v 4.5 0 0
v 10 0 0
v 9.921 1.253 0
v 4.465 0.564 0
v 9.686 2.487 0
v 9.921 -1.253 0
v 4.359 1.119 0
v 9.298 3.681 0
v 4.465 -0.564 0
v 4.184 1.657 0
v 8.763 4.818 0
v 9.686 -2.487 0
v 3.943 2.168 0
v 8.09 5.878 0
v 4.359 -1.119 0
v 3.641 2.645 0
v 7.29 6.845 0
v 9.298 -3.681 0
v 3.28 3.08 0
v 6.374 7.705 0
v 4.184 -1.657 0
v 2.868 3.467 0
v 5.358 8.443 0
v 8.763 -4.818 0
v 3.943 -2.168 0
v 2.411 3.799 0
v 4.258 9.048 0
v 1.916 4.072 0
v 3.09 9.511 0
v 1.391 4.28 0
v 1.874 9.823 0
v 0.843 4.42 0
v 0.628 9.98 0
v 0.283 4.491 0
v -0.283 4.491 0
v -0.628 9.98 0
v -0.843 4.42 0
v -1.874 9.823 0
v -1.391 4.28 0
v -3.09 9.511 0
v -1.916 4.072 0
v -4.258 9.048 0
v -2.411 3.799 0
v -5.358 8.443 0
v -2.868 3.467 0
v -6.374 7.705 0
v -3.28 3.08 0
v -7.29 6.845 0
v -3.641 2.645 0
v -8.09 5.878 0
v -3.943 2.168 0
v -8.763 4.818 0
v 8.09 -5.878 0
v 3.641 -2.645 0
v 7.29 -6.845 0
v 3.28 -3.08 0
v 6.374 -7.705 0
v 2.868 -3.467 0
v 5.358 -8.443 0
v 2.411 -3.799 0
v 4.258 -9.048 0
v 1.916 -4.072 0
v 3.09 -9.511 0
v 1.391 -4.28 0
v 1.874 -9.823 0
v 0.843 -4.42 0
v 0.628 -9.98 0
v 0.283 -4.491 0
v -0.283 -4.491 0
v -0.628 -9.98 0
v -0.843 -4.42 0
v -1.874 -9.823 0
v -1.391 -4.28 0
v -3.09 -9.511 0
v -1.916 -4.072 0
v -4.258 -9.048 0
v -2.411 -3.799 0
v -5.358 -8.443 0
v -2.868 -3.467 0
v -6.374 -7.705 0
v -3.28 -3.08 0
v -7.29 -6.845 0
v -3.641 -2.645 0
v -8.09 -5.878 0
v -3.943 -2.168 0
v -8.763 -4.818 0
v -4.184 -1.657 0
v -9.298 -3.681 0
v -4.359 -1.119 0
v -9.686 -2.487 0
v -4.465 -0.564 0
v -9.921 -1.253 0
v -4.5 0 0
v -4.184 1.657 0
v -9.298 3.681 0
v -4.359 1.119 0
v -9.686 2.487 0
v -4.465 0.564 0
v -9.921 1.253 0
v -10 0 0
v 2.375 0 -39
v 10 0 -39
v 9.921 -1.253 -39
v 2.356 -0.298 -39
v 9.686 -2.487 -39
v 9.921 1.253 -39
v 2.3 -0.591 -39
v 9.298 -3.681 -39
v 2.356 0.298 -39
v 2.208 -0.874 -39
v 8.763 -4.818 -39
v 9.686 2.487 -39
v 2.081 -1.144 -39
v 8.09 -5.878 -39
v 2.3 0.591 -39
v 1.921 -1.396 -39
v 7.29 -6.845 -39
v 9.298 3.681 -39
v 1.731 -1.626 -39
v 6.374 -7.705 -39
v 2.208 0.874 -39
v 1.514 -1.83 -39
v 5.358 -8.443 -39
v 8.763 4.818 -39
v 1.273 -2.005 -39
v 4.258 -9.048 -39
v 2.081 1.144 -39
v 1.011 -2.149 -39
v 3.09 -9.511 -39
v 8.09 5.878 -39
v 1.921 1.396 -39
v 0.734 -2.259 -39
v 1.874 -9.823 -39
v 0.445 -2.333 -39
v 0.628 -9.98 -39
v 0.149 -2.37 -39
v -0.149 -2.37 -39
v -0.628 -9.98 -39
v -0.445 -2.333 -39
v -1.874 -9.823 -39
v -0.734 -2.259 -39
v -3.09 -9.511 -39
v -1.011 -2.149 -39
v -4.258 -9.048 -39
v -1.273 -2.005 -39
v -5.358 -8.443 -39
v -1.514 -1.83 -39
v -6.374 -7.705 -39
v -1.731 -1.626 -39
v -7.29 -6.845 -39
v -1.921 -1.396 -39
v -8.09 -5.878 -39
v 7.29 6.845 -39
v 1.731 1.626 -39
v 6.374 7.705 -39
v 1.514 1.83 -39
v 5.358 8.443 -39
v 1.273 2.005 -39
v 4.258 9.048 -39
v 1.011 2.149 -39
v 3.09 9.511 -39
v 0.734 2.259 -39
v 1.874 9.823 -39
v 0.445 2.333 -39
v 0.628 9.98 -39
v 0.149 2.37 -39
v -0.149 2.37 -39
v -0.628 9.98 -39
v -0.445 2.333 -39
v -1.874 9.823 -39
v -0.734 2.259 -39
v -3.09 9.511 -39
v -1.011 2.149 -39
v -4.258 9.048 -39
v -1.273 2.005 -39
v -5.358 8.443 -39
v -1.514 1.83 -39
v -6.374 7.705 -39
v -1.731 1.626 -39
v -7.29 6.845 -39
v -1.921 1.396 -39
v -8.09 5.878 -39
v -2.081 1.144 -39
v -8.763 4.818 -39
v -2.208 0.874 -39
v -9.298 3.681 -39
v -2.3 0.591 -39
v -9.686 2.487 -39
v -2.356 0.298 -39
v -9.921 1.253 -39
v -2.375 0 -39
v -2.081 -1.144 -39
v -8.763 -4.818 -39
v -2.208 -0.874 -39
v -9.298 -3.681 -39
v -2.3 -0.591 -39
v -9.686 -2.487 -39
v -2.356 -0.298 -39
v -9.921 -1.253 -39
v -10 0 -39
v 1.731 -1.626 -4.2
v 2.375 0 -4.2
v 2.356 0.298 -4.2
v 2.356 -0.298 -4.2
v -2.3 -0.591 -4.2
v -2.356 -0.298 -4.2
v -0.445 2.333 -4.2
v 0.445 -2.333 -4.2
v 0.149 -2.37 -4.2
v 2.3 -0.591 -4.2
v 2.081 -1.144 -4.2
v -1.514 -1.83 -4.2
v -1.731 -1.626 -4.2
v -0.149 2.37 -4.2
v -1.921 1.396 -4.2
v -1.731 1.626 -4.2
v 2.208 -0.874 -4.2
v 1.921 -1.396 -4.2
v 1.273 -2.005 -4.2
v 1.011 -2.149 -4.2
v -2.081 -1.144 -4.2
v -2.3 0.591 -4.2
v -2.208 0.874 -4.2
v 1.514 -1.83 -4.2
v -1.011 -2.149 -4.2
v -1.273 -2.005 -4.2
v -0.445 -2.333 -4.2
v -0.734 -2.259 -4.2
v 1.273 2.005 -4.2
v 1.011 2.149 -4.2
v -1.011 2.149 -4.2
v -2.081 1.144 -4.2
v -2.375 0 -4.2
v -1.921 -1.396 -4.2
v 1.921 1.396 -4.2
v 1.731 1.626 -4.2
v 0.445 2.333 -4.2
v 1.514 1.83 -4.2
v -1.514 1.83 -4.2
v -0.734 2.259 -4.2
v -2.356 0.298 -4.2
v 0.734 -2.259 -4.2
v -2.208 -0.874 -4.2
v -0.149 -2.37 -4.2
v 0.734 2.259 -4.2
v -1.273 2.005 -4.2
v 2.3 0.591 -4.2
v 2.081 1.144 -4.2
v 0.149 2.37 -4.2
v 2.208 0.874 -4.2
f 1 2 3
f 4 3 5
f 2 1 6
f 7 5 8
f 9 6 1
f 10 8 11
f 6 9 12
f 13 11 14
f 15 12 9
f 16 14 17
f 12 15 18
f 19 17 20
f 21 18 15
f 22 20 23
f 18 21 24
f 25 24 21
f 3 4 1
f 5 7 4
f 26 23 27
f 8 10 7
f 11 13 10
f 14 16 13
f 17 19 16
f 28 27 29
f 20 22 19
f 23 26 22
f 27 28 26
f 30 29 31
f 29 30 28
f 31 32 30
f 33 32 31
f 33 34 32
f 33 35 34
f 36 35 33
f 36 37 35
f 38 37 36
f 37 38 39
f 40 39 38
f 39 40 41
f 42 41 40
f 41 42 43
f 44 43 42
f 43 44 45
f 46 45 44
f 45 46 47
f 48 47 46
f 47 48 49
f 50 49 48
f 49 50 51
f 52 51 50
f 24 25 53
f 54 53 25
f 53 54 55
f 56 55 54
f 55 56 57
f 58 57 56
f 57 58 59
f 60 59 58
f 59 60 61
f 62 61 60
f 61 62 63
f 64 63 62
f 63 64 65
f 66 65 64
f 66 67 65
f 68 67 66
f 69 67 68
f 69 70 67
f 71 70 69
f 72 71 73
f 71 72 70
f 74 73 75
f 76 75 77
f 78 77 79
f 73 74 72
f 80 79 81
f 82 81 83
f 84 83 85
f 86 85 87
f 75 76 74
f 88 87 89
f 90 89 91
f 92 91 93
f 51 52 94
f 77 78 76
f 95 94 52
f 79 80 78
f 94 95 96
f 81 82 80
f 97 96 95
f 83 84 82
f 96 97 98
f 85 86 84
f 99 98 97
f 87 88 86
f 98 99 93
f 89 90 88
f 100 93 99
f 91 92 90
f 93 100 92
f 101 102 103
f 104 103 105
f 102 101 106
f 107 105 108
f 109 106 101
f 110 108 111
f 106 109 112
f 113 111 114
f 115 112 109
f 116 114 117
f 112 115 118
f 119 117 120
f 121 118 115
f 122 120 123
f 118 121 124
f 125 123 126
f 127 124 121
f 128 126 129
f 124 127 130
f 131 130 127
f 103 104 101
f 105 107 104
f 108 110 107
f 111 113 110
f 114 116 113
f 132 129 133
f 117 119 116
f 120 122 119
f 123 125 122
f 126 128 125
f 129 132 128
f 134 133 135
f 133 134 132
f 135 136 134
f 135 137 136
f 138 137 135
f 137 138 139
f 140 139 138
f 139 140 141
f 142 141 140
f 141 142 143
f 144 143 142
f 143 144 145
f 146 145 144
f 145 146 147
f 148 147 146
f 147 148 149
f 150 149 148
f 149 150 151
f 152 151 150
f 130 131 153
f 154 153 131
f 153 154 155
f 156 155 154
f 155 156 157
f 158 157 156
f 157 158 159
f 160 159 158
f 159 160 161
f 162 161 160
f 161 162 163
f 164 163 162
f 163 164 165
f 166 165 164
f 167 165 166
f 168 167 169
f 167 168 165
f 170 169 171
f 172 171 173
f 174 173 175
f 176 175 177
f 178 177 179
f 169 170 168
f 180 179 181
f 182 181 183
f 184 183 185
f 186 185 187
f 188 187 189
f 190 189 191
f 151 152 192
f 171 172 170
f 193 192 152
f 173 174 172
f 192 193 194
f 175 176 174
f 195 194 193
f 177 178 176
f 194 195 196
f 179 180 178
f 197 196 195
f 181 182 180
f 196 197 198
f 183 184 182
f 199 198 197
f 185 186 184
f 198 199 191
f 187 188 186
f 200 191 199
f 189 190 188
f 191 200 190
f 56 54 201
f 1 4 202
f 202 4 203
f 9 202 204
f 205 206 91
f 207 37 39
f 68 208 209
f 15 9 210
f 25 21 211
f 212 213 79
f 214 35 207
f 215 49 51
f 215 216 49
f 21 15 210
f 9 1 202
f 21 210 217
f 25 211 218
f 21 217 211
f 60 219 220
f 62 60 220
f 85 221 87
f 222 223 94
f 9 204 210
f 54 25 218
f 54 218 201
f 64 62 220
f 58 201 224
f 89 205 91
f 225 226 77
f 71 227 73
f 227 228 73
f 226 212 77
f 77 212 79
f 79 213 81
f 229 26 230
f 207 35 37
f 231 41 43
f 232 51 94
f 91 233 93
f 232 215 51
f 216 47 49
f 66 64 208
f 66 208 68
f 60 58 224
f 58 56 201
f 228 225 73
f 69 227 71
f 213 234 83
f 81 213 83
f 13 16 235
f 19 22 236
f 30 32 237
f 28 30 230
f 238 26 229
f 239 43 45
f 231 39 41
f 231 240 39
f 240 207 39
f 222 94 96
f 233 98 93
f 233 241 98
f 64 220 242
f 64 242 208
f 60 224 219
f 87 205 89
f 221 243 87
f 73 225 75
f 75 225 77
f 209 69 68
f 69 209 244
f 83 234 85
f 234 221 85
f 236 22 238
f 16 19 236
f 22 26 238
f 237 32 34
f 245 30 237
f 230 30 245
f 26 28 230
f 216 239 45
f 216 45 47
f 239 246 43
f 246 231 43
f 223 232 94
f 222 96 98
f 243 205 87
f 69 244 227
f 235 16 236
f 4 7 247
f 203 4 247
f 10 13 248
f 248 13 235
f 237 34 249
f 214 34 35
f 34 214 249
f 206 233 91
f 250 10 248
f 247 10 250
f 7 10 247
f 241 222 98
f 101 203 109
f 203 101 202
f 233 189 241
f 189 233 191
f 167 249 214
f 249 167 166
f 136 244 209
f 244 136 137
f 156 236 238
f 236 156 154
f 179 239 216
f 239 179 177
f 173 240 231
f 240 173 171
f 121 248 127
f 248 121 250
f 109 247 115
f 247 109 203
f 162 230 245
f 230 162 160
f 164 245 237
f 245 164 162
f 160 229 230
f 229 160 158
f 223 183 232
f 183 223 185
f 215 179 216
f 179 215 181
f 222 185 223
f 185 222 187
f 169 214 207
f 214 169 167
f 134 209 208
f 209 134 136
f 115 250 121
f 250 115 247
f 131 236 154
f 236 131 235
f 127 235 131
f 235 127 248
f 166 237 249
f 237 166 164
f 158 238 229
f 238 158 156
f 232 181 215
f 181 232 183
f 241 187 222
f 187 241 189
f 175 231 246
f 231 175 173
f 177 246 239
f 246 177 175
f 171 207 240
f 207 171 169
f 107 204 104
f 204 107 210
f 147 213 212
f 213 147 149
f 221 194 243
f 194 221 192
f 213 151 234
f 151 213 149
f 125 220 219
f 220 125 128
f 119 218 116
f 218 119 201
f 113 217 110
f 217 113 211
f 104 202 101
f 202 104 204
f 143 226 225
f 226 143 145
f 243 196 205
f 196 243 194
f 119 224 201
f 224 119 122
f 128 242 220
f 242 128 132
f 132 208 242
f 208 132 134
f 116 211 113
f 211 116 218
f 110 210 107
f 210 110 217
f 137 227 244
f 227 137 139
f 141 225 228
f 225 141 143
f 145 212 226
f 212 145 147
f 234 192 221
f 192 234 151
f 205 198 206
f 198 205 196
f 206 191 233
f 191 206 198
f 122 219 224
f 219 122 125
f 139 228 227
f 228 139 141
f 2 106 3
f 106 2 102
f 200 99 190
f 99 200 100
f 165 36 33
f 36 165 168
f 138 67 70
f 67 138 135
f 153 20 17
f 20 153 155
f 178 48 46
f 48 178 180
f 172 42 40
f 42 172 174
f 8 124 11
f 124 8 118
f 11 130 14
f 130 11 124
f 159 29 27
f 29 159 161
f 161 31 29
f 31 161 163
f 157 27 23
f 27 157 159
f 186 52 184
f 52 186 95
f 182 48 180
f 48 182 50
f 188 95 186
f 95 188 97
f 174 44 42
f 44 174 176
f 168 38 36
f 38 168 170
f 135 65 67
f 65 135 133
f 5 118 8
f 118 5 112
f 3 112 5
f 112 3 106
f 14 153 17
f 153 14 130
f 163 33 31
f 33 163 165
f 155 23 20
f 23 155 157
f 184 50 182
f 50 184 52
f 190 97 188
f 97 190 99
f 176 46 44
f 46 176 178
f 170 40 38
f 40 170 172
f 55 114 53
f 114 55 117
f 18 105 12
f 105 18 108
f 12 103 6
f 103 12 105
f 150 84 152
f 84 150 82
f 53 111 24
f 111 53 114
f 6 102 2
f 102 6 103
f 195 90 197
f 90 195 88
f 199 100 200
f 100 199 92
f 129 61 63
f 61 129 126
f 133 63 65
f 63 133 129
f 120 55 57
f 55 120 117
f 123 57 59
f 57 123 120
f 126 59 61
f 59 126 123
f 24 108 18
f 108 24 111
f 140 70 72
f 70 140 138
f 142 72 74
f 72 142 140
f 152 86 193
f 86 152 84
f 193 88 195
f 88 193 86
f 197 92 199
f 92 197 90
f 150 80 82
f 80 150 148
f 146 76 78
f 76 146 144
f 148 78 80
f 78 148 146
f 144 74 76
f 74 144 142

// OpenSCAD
$fn = 50;


difference() {
	union() {
		translate(v = [0, 0, -39.0000000000]) {
			cylinder(h = 39, r = 10.0000000000);
		}
		cylinder(h = 0, r = 13.0000000000);
	}
	union() {
		translate(v = [0, 0, 0]) {
			rotate(a = [0, 0, 0]) {
				difference() {
					union() {
						#translate(v = [0, 0, -39.0000000000]) {
							cylinder(h = 39, r = 2.2500000000);
						}
						#translate(v = [0, 0, -4.2000000000]) {
							cylinder(h = 4.2000000000, r = 10.0000000000, r1 = 2.3750000000, r2 = 4.5000000000);
						}
						#translate(v = [0, 0, -39.0000000000]) {
							cylinder(h = 39, r = 2.3750000000);
						}
						#translate(v = [0, 0, -39.0000000000]) {
							cylinder(h = 39, r = 2.2500000000);
						}
					}
					union();
				}
			}
		}
	}
}
